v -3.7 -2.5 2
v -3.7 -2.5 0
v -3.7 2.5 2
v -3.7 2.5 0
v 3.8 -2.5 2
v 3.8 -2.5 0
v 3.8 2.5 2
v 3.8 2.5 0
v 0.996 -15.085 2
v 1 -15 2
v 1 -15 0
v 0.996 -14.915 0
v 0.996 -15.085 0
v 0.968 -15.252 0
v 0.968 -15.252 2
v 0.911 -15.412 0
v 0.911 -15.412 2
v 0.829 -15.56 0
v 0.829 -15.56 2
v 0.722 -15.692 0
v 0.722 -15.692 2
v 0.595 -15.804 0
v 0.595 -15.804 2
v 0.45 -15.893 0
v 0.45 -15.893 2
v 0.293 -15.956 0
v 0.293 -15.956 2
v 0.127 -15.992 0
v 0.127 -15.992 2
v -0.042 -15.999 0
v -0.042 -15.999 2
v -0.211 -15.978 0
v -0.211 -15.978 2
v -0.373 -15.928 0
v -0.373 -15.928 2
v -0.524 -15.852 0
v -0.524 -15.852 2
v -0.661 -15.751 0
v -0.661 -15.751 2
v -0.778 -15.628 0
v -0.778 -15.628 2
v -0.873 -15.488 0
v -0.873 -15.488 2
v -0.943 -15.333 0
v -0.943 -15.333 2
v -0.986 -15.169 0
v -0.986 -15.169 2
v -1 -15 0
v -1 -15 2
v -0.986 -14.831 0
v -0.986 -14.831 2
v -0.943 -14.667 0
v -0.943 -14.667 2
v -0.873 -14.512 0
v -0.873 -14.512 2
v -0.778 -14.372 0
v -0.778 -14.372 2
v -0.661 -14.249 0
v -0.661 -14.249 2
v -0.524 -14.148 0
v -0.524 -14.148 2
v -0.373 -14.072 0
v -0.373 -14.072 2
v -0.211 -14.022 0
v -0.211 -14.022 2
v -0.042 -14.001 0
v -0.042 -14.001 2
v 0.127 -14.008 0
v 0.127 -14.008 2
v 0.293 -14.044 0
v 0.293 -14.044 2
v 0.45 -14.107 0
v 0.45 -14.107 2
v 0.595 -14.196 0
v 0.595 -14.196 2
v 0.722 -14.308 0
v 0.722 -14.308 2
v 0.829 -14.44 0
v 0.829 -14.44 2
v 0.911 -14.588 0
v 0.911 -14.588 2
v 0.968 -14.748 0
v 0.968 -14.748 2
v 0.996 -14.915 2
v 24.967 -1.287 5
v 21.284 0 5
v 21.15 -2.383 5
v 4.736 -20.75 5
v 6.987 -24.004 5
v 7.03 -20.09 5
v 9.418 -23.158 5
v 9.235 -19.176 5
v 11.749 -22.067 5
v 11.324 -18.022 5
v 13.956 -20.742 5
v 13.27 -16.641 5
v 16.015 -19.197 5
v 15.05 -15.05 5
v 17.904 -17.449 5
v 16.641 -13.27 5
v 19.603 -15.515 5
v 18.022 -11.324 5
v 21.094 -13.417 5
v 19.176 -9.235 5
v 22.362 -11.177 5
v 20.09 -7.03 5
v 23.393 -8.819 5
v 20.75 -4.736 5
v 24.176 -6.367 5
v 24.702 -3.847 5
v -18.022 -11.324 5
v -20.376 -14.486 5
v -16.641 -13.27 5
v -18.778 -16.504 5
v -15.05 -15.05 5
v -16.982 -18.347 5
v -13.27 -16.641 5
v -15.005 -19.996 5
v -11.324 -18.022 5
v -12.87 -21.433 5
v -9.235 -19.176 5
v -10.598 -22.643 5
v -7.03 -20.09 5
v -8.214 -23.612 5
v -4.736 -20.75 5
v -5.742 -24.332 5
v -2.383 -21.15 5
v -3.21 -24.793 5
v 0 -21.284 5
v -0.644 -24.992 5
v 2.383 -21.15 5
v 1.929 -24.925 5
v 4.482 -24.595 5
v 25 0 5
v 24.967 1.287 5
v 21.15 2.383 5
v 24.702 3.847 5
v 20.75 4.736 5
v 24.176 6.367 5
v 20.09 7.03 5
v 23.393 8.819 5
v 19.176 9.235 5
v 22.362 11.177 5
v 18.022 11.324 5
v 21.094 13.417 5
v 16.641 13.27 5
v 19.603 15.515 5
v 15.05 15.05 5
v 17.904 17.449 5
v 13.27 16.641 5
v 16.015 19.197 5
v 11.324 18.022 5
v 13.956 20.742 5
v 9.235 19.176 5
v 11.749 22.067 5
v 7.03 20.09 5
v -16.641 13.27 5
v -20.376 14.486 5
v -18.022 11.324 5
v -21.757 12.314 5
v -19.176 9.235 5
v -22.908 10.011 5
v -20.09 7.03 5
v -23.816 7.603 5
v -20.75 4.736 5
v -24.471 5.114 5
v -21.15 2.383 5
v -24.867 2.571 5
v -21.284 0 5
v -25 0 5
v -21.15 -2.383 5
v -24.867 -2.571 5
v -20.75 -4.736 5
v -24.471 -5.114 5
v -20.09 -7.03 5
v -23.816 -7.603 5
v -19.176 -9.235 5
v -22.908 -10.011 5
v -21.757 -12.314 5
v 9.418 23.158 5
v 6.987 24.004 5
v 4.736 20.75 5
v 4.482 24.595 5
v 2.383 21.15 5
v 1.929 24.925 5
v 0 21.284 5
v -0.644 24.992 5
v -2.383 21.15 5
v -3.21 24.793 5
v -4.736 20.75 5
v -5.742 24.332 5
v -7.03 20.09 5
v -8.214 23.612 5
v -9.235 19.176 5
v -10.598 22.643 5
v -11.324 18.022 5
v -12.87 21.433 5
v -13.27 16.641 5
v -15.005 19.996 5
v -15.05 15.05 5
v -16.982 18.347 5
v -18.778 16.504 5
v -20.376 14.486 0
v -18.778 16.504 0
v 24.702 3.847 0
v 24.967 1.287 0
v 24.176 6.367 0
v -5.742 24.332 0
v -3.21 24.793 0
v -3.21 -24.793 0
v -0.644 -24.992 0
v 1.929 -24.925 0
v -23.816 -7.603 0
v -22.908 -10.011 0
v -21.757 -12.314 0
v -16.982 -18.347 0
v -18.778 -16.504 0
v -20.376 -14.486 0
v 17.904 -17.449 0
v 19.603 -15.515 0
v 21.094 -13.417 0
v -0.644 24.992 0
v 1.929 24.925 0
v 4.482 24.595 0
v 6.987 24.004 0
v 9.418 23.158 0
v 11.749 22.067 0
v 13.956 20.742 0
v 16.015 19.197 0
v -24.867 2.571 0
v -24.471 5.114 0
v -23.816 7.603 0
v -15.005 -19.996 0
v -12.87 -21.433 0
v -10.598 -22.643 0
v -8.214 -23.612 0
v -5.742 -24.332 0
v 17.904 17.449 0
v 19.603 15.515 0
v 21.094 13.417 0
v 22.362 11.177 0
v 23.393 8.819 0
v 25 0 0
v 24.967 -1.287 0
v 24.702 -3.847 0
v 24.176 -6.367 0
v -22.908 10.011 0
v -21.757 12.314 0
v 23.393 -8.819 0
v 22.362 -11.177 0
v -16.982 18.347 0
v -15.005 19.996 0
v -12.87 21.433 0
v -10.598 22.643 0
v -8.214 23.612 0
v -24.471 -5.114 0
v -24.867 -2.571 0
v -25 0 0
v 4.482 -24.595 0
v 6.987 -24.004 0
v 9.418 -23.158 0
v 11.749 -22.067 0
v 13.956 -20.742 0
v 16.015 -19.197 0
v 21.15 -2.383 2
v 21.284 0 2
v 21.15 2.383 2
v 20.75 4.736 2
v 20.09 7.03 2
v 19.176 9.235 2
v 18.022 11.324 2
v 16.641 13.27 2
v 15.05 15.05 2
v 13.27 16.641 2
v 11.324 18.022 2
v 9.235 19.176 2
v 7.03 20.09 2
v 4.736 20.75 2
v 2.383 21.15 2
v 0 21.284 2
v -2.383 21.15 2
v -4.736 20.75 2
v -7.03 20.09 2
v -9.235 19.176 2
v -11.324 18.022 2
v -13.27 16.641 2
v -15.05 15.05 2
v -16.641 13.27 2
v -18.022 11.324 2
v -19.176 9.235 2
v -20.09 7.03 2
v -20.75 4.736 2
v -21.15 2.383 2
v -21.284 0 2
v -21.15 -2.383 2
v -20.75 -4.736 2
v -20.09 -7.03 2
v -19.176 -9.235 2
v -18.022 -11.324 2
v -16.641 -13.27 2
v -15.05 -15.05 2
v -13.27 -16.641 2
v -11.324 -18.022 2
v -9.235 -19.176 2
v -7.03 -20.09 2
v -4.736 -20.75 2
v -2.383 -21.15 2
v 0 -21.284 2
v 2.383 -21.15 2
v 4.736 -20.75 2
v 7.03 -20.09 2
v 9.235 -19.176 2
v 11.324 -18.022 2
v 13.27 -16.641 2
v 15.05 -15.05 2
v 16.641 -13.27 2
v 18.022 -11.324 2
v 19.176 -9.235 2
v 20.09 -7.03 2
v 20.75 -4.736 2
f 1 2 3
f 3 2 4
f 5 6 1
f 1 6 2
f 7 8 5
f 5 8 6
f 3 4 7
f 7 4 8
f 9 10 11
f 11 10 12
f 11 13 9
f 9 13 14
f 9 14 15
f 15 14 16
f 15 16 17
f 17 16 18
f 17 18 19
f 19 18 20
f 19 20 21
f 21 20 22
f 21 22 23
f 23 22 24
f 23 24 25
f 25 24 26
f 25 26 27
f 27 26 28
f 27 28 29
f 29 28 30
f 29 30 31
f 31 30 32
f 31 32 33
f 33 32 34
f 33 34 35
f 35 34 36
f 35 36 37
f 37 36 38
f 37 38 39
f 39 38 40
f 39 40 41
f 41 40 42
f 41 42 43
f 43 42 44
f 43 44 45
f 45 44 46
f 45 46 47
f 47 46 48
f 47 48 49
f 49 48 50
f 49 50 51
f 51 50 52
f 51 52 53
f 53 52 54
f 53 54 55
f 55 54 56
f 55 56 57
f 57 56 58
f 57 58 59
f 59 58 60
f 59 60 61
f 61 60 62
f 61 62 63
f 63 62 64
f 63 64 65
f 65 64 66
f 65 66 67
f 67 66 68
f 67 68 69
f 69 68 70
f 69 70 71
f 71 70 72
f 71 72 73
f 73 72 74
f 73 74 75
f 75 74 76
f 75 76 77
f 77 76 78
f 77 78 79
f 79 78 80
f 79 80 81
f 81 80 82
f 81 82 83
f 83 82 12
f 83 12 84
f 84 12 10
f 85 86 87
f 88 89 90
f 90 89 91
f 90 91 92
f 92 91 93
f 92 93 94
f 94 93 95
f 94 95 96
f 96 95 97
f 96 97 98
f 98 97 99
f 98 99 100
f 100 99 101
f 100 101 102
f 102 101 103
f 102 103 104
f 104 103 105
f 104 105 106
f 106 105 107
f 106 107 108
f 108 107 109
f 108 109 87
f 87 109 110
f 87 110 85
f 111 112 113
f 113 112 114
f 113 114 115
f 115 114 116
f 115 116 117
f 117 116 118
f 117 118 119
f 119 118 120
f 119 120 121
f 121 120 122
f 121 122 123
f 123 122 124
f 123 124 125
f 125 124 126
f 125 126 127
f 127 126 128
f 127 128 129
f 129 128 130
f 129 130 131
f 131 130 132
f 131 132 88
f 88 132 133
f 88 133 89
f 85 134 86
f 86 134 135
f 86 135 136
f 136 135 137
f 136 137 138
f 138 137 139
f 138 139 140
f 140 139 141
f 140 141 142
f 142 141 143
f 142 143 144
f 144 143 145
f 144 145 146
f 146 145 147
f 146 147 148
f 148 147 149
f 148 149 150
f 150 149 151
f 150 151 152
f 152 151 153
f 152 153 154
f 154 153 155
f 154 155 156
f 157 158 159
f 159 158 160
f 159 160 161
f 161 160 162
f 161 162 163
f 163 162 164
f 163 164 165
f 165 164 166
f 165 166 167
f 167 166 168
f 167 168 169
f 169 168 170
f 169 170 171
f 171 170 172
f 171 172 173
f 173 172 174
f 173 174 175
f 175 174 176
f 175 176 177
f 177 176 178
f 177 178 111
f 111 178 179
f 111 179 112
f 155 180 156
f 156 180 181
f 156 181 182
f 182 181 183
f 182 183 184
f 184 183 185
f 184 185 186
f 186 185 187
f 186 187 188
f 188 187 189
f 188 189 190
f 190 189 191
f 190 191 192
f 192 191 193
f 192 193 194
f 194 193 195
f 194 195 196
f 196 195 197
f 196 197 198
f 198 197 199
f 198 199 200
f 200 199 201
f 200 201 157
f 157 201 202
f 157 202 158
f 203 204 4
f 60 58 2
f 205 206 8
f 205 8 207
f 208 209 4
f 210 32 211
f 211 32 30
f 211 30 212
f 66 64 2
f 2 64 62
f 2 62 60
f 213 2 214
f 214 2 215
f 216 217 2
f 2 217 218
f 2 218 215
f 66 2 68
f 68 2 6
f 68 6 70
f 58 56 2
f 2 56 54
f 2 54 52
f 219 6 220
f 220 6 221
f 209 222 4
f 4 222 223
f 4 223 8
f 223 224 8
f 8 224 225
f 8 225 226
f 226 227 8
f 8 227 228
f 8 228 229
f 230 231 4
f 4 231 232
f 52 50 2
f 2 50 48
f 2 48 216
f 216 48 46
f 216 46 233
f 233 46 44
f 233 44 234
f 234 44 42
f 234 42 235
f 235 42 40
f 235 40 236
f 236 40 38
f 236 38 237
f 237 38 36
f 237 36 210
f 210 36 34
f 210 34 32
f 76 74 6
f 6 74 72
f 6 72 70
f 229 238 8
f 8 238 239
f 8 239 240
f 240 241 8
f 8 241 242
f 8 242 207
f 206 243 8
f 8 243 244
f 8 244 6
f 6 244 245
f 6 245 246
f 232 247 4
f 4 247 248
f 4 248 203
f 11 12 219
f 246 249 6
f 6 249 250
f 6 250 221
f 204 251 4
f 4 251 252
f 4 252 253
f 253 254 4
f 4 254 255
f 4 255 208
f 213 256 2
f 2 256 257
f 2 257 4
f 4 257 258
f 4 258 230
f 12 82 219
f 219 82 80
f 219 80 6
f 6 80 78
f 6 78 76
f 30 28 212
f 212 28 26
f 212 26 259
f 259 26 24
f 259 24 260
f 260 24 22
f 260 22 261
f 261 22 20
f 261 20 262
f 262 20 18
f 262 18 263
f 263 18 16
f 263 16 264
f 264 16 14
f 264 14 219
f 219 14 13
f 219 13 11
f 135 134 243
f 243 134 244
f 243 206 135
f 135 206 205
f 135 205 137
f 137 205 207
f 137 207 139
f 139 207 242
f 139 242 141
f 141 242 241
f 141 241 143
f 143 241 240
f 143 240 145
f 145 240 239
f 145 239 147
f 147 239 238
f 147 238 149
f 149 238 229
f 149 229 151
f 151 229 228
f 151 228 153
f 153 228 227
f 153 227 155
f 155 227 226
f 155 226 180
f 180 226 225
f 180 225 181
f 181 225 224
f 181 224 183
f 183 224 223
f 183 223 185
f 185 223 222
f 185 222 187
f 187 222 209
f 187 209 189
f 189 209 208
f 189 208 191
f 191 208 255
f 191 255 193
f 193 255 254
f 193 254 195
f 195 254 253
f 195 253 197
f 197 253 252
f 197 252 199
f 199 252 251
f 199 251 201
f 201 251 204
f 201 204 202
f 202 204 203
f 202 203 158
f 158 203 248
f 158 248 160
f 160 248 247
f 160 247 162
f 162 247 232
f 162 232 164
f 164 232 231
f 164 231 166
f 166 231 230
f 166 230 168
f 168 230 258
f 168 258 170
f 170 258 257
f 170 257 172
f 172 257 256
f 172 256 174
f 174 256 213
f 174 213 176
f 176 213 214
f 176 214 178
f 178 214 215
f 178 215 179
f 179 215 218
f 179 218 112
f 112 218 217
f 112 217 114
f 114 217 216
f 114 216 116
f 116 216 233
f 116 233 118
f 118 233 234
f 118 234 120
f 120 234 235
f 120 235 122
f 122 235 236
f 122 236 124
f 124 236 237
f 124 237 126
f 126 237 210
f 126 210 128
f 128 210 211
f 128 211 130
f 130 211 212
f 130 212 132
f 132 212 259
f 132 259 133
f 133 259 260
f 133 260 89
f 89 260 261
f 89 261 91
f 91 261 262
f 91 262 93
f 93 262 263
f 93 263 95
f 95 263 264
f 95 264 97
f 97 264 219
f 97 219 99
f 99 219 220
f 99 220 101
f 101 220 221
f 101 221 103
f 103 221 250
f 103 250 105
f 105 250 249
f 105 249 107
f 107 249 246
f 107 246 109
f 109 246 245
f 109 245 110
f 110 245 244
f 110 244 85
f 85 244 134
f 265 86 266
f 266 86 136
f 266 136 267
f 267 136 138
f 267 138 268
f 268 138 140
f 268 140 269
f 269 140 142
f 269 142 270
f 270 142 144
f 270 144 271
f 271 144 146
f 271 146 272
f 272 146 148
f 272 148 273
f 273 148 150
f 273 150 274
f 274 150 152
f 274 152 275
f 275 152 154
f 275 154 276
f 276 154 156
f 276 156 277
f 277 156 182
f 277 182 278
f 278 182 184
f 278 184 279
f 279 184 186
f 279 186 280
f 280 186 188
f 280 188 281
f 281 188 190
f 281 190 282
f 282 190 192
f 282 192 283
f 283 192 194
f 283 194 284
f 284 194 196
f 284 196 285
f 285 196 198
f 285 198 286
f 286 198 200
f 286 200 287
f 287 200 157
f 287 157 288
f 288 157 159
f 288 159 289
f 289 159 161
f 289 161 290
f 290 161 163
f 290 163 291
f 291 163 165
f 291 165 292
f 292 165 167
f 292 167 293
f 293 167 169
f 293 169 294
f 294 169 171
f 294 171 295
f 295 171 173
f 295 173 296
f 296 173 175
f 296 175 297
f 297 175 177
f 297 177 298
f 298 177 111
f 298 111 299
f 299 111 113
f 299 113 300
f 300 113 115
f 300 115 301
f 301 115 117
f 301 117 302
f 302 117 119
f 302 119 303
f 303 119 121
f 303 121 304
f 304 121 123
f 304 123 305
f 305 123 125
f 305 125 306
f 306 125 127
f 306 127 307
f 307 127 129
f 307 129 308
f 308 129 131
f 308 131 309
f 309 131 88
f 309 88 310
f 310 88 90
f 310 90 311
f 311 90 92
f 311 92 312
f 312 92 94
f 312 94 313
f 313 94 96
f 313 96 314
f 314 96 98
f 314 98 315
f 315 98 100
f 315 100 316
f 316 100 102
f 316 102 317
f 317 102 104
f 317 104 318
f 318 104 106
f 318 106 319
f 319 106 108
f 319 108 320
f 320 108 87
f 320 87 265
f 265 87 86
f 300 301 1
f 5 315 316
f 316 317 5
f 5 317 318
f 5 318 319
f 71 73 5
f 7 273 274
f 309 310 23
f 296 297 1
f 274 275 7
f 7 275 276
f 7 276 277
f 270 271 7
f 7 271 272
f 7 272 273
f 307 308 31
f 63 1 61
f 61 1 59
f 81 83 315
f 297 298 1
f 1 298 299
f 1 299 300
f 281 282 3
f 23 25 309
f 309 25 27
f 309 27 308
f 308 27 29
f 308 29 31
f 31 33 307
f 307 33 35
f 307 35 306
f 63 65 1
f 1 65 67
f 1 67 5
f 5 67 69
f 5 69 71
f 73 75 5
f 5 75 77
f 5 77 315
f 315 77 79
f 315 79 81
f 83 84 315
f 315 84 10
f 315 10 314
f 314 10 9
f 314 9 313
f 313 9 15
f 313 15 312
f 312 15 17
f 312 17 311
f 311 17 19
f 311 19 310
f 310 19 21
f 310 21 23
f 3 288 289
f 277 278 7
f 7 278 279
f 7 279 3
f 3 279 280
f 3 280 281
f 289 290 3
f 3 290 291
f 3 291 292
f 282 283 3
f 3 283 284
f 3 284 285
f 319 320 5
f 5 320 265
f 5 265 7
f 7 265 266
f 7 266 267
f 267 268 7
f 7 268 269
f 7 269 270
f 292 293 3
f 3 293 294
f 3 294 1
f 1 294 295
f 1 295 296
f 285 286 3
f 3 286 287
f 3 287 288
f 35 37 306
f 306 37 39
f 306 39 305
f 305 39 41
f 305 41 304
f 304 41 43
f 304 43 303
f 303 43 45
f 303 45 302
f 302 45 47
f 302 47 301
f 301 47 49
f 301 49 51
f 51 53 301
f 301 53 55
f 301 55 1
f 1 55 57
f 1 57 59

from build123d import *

# Parameters (mm, degrees)
ESQUISSE1_R             = 25
ESQUISSE1_R_2           = 1
ESQUISSE1_W             = 7.5
ESQUISSE1_H             = 5
BOSS_EXTRU_1_DEPTH      = 5
ESQUISSE2_R             = 21.284112143
ENL_V_MAT_EXTRU_1_DEPTH = 3


with BuildPart() as part:
    # Esquisse1 → Boss.-Extru.1 (new body)
    with BuildSketch(Plane.XY):
        Circle(ESQUISSE1_R)
        with Locations((0, -15)):
            Circle(ESQUISSE1_R_2, mode=Mode.SUBTRACT)
        with Locations((0.05, 0)):
            Rectangle(ESQUISSE1_W, ESQUISSE1_H, mode=Mode.SUBTRACT)
    extrude(amount=BOSS_EXTRU_1_DEPTH)

    # Esquisse2 → Enlèv. mat.-Extru.1 (cut)
    with BuildSketch(Plane.XY.offset(5)):
        Circle(ESQUISSE2_R)
    extrude(amount=-ENL_V_MAT_EXTRU_1_DEPTH, mode=Mode.SUBTRACT)


solid = part.part
